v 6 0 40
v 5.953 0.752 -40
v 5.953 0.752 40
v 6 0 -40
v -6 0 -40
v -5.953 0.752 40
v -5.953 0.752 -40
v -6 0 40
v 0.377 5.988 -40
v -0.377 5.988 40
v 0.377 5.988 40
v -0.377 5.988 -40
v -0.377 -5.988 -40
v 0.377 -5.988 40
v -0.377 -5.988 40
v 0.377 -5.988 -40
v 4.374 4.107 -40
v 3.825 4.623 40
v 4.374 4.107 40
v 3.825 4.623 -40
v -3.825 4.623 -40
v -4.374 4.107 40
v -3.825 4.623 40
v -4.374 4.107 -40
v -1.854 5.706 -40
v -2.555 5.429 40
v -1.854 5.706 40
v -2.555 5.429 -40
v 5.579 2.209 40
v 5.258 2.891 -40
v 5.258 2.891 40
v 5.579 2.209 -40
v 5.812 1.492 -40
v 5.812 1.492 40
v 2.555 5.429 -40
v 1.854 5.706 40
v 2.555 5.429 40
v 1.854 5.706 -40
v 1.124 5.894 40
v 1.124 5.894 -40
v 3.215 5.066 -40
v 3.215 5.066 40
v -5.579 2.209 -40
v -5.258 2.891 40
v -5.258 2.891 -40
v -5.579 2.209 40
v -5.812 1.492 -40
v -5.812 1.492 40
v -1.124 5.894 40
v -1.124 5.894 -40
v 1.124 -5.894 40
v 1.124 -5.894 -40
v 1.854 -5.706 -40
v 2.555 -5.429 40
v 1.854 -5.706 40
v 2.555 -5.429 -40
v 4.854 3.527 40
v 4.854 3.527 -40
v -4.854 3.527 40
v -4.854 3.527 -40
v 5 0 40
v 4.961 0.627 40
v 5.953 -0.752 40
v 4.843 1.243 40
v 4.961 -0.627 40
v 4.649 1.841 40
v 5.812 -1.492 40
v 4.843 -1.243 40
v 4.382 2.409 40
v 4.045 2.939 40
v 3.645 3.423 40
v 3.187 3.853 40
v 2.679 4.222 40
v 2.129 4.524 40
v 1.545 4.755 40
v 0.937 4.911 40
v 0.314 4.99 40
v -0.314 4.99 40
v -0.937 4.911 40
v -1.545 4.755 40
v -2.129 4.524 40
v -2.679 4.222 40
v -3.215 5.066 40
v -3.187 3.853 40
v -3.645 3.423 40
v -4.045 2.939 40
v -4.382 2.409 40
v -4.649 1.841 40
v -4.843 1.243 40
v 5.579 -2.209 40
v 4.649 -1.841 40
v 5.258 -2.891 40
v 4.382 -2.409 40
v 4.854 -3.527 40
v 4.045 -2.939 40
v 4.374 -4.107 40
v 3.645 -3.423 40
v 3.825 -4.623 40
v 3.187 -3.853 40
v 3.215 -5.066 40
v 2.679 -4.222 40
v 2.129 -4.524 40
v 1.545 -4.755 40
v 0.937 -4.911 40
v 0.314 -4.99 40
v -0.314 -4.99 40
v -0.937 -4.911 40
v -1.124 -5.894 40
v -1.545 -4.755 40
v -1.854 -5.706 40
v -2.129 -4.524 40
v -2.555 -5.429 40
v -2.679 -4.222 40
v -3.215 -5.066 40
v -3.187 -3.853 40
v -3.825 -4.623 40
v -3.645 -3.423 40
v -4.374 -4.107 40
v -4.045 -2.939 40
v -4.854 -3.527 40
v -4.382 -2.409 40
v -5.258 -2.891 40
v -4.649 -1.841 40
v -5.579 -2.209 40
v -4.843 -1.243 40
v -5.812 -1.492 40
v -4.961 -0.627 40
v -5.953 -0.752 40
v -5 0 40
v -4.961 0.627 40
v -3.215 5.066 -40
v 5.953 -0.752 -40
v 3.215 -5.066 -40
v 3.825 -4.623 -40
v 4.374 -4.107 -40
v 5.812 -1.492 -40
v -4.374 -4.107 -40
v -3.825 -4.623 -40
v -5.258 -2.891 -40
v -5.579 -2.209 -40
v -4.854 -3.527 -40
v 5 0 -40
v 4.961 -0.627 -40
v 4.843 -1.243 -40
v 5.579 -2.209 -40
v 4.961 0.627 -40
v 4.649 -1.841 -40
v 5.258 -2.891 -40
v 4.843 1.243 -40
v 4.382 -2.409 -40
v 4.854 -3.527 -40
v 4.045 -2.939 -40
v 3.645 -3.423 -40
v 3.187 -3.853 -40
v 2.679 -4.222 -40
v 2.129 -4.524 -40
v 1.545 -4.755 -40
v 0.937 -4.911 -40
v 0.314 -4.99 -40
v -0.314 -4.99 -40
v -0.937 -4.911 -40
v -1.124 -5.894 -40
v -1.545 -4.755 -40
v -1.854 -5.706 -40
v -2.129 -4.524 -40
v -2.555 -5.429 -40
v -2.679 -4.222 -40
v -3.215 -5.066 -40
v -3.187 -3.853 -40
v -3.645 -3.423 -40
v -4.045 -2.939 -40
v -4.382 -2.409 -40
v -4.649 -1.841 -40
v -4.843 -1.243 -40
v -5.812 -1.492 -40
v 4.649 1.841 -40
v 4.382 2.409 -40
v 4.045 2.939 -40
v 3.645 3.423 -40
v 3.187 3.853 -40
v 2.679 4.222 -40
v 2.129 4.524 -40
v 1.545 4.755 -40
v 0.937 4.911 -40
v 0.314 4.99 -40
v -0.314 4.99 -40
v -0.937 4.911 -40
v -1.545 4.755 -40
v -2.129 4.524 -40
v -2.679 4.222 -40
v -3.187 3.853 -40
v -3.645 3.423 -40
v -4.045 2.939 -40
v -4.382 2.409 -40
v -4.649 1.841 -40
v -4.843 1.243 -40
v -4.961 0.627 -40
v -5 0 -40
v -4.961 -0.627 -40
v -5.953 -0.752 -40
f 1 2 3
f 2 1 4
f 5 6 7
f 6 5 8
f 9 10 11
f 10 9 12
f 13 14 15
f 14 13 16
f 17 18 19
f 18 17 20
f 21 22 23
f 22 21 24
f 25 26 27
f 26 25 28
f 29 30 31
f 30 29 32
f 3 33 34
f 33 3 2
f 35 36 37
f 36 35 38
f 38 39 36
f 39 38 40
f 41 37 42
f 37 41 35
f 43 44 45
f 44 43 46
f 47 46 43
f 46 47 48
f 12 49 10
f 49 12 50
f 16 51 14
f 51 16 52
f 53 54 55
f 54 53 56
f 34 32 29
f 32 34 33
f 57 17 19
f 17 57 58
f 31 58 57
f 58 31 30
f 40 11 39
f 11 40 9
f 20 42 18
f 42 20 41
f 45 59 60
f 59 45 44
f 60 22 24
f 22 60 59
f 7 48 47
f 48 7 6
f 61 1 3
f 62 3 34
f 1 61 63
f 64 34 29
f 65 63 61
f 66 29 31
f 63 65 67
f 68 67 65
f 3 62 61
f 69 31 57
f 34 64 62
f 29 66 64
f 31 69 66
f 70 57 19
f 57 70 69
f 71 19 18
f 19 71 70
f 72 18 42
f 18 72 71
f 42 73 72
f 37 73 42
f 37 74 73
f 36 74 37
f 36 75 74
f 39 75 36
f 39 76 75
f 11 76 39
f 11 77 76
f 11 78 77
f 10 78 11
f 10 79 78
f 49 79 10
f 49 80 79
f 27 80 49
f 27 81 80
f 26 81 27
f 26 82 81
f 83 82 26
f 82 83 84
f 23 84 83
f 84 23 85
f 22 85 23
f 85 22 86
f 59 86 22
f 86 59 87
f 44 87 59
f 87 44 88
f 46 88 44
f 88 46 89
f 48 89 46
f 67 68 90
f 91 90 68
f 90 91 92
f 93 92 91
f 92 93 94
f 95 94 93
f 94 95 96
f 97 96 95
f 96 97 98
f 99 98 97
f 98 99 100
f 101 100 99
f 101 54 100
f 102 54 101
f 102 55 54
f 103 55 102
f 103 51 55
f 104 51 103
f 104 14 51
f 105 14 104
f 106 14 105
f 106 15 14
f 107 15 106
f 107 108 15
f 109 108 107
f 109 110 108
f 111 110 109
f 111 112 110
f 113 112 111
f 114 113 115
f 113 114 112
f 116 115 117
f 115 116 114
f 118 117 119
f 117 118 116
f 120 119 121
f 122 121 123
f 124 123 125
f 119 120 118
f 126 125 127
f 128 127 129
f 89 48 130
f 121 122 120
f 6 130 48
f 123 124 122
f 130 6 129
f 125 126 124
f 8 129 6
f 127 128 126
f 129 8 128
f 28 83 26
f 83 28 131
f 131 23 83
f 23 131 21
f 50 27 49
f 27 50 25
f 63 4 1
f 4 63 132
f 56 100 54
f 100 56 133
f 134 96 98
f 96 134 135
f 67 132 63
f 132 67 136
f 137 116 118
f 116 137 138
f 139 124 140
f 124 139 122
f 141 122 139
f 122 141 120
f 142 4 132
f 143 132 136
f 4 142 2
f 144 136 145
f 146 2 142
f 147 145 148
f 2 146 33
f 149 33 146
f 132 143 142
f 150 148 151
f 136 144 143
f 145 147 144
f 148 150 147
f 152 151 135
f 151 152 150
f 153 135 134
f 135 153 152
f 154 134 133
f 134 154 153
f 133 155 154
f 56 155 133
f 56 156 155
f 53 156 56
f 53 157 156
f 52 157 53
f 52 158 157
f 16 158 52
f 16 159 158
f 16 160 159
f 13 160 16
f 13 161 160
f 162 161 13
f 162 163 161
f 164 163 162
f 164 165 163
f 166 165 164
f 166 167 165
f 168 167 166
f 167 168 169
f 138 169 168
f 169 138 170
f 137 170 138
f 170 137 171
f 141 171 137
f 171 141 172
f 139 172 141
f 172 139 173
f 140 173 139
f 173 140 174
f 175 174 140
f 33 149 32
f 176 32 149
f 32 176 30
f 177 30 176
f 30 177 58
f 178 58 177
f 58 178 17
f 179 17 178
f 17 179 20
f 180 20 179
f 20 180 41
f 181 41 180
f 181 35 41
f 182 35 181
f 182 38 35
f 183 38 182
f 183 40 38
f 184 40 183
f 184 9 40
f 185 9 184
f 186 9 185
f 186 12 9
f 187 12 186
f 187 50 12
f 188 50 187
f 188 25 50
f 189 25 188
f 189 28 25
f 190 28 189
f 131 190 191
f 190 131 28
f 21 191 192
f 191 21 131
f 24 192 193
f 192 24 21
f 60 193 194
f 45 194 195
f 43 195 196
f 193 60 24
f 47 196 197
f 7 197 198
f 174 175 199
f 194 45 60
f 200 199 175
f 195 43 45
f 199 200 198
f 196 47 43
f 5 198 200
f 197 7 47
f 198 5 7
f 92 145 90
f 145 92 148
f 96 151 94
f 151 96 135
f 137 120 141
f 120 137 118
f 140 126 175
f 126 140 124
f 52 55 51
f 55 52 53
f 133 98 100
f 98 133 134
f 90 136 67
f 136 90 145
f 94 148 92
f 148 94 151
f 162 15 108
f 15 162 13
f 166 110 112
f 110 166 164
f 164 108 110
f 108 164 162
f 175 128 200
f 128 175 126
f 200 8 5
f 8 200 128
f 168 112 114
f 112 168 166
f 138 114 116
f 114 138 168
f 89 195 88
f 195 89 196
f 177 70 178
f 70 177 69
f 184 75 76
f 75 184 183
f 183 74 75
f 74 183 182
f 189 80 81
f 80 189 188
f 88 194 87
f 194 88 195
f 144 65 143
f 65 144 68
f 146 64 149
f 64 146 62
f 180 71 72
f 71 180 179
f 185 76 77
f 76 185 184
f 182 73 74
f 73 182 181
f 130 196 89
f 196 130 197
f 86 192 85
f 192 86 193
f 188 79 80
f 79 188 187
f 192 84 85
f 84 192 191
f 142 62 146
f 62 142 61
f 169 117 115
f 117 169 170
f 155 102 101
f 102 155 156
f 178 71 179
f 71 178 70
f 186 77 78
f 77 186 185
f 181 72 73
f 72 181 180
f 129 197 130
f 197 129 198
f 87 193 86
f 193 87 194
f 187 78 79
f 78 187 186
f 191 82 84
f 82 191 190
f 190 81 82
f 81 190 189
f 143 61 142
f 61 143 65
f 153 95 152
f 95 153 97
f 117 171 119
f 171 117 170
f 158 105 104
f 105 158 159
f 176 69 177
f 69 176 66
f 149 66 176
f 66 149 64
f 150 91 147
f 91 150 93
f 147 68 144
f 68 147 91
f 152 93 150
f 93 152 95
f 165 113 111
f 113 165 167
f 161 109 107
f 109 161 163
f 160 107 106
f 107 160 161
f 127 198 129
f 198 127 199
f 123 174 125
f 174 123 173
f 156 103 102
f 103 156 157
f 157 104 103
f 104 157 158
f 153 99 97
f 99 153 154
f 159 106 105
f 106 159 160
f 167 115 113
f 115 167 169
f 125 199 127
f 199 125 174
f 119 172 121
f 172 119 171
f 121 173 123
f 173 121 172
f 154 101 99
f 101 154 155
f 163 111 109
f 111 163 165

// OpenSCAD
$fn = 50;


difference() {
	union() {
		translate(v = [0, 0, -40.0000000000]) {
			cylinder(h = 80, r = 6.0000000000);
		}
	}
	union() {
		translate(v = [0, 0, -100.0000000000]) {
			cylinder(h = 200, r = 5);
		}
	}
}
